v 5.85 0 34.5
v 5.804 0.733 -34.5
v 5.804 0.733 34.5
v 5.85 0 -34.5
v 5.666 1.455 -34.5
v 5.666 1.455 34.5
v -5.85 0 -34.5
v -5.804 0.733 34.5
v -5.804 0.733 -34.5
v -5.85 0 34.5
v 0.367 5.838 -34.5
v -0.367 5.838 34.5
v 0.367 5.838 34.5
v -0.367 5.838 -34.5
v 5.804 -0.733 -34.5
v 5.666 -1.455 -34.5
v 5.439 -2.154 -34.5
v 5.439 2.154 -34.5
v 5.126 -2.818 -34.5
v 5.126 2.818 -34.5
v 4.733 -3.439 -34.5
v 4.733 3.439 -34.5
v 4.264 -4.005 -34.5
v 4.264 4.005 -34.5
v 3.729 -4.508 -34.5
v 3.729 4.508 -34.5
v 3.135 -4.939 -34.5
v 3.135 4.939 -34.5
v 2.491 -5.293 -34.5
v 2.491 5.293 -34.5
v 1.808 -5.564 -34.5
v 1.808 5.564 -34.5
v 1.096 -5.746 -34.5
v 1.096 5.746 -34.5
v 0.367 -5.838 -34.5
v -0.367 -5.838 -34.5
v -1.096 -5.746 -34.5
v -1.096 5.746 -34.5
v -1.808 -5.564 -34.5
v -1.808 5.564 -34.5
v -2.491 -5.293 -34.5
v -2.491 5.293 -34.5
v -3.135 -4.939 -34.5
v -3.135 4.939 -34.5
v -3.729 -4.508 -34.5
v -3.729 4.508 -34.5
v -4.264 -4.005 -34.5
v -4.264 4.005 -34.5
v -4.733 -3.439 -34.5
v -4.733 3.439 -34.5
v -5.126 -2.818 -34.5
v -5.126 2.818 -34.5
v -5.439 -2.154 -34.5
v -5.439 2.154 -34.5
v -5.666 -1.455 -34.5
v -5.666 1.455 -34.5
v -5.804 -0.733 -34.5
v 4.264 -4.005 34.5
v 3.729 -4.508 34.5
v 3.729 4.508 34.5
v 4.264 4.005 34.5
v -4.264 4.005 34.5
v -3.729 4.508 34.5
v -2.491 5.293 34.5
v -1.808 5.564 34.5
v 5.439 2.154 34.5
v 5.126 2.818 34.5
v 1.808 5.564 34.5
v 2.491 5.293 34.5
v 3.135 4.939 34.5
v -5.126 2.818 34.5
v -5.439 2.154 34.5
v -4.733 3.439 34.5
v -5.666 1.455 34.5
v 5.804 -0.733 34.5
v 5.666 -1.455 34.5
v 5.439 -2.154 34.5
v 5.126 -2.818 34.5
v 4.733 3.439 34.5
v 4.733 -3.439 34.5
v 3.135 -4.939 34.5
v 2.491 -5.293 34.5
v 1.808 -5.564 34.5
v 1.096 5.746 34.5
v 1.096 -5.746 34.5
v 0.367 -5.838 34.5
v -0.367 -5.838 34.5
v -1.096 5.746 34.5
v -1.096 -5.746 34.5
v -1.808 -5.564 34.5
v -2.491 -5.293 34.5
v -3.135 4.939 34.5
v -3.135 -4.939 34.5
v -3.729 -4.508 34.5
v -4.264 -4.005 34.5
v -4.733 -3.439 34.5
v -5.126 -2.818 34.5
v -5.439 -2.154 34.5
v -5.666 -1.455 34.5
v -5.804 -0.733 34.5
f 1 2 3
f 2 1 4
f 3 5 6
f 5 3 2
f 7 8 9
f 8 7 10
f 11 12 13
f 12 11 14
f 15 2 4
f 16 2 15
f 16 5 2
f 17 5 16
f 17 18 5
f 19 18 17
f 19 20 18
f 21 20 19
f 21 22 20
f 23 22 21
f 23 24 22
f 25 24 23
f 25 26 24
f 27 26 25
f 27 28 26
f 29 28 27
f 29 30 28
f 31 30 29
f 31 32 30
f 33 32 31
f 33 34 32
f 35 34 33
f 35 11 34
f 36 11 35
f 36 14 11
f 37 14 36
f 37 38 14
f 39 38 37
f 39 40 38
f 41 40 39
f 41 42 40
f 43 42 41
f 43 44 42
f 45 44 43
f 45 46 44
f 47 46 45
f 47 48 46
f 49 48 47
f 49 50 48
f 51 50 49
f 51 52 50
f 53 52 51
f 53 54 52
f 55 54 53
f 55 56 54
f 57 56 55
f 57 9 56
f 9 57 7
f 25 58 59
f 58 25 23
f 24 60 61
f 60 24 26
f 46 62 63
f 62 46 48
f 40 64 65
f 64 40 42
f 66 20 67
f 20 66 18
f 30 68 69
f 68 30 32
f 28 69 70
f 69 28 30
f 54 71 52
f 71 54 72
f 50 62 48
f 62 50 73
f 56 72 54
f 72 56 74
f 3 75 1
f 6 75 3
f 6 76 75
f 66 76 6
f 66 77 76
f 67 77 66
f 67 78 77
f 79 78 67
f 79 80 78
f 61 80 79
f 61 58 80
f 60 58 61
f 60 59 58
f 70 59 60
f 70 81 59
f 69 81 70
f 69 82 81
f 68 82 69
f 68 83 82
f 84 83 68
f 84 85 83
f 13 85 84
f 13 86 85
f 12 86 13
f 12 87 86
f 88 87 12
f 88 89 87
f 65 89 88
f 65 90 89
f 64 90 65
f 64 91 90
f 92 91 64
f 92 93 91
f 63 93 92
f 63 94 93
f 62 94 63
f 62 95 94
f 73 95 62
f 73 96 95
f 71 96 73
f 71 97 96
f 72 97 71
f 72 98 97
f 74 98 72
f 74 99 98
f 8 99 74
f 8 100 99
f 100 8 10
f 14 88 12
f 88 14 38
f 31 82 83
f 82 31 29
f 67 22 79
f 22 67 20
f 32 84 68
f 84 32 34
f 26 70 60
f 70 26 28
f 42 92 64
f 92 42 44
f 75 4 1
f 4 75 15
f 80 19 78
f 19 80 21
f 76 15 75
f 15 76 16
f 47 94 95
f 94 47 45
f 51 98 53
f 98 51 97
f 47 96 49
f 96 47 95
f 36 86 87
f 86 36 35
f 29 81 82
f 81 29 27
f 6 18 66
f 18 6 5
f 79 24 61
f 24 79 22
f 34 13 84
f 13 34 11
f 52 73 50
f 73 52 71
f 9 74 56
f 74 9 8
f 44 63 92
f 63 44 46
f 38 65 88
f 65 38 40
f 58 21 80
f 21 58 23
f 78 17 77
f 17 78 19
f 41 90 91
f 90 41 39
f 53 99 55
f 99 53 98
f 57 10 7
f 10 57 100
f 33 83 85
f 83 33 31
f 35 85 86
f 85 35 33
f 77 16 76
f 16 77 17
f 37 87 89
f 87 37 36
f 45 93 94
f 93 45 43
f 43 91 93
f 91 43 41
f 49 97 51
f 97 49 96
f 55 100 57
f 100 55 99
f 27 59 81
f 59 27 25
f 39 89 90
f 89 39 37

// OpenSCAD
$fn = 50;


difference() {
	union() {
		translate(v = [0, 0, -34.5000000000]) {
			cylinder(h = 69, r = 5.8500000000);
		}
	}
	union() {
		translate(v = [0, 0, -100.0000000000]) {
			cylinder(h = 200, r = 0);
		}
	}
}
